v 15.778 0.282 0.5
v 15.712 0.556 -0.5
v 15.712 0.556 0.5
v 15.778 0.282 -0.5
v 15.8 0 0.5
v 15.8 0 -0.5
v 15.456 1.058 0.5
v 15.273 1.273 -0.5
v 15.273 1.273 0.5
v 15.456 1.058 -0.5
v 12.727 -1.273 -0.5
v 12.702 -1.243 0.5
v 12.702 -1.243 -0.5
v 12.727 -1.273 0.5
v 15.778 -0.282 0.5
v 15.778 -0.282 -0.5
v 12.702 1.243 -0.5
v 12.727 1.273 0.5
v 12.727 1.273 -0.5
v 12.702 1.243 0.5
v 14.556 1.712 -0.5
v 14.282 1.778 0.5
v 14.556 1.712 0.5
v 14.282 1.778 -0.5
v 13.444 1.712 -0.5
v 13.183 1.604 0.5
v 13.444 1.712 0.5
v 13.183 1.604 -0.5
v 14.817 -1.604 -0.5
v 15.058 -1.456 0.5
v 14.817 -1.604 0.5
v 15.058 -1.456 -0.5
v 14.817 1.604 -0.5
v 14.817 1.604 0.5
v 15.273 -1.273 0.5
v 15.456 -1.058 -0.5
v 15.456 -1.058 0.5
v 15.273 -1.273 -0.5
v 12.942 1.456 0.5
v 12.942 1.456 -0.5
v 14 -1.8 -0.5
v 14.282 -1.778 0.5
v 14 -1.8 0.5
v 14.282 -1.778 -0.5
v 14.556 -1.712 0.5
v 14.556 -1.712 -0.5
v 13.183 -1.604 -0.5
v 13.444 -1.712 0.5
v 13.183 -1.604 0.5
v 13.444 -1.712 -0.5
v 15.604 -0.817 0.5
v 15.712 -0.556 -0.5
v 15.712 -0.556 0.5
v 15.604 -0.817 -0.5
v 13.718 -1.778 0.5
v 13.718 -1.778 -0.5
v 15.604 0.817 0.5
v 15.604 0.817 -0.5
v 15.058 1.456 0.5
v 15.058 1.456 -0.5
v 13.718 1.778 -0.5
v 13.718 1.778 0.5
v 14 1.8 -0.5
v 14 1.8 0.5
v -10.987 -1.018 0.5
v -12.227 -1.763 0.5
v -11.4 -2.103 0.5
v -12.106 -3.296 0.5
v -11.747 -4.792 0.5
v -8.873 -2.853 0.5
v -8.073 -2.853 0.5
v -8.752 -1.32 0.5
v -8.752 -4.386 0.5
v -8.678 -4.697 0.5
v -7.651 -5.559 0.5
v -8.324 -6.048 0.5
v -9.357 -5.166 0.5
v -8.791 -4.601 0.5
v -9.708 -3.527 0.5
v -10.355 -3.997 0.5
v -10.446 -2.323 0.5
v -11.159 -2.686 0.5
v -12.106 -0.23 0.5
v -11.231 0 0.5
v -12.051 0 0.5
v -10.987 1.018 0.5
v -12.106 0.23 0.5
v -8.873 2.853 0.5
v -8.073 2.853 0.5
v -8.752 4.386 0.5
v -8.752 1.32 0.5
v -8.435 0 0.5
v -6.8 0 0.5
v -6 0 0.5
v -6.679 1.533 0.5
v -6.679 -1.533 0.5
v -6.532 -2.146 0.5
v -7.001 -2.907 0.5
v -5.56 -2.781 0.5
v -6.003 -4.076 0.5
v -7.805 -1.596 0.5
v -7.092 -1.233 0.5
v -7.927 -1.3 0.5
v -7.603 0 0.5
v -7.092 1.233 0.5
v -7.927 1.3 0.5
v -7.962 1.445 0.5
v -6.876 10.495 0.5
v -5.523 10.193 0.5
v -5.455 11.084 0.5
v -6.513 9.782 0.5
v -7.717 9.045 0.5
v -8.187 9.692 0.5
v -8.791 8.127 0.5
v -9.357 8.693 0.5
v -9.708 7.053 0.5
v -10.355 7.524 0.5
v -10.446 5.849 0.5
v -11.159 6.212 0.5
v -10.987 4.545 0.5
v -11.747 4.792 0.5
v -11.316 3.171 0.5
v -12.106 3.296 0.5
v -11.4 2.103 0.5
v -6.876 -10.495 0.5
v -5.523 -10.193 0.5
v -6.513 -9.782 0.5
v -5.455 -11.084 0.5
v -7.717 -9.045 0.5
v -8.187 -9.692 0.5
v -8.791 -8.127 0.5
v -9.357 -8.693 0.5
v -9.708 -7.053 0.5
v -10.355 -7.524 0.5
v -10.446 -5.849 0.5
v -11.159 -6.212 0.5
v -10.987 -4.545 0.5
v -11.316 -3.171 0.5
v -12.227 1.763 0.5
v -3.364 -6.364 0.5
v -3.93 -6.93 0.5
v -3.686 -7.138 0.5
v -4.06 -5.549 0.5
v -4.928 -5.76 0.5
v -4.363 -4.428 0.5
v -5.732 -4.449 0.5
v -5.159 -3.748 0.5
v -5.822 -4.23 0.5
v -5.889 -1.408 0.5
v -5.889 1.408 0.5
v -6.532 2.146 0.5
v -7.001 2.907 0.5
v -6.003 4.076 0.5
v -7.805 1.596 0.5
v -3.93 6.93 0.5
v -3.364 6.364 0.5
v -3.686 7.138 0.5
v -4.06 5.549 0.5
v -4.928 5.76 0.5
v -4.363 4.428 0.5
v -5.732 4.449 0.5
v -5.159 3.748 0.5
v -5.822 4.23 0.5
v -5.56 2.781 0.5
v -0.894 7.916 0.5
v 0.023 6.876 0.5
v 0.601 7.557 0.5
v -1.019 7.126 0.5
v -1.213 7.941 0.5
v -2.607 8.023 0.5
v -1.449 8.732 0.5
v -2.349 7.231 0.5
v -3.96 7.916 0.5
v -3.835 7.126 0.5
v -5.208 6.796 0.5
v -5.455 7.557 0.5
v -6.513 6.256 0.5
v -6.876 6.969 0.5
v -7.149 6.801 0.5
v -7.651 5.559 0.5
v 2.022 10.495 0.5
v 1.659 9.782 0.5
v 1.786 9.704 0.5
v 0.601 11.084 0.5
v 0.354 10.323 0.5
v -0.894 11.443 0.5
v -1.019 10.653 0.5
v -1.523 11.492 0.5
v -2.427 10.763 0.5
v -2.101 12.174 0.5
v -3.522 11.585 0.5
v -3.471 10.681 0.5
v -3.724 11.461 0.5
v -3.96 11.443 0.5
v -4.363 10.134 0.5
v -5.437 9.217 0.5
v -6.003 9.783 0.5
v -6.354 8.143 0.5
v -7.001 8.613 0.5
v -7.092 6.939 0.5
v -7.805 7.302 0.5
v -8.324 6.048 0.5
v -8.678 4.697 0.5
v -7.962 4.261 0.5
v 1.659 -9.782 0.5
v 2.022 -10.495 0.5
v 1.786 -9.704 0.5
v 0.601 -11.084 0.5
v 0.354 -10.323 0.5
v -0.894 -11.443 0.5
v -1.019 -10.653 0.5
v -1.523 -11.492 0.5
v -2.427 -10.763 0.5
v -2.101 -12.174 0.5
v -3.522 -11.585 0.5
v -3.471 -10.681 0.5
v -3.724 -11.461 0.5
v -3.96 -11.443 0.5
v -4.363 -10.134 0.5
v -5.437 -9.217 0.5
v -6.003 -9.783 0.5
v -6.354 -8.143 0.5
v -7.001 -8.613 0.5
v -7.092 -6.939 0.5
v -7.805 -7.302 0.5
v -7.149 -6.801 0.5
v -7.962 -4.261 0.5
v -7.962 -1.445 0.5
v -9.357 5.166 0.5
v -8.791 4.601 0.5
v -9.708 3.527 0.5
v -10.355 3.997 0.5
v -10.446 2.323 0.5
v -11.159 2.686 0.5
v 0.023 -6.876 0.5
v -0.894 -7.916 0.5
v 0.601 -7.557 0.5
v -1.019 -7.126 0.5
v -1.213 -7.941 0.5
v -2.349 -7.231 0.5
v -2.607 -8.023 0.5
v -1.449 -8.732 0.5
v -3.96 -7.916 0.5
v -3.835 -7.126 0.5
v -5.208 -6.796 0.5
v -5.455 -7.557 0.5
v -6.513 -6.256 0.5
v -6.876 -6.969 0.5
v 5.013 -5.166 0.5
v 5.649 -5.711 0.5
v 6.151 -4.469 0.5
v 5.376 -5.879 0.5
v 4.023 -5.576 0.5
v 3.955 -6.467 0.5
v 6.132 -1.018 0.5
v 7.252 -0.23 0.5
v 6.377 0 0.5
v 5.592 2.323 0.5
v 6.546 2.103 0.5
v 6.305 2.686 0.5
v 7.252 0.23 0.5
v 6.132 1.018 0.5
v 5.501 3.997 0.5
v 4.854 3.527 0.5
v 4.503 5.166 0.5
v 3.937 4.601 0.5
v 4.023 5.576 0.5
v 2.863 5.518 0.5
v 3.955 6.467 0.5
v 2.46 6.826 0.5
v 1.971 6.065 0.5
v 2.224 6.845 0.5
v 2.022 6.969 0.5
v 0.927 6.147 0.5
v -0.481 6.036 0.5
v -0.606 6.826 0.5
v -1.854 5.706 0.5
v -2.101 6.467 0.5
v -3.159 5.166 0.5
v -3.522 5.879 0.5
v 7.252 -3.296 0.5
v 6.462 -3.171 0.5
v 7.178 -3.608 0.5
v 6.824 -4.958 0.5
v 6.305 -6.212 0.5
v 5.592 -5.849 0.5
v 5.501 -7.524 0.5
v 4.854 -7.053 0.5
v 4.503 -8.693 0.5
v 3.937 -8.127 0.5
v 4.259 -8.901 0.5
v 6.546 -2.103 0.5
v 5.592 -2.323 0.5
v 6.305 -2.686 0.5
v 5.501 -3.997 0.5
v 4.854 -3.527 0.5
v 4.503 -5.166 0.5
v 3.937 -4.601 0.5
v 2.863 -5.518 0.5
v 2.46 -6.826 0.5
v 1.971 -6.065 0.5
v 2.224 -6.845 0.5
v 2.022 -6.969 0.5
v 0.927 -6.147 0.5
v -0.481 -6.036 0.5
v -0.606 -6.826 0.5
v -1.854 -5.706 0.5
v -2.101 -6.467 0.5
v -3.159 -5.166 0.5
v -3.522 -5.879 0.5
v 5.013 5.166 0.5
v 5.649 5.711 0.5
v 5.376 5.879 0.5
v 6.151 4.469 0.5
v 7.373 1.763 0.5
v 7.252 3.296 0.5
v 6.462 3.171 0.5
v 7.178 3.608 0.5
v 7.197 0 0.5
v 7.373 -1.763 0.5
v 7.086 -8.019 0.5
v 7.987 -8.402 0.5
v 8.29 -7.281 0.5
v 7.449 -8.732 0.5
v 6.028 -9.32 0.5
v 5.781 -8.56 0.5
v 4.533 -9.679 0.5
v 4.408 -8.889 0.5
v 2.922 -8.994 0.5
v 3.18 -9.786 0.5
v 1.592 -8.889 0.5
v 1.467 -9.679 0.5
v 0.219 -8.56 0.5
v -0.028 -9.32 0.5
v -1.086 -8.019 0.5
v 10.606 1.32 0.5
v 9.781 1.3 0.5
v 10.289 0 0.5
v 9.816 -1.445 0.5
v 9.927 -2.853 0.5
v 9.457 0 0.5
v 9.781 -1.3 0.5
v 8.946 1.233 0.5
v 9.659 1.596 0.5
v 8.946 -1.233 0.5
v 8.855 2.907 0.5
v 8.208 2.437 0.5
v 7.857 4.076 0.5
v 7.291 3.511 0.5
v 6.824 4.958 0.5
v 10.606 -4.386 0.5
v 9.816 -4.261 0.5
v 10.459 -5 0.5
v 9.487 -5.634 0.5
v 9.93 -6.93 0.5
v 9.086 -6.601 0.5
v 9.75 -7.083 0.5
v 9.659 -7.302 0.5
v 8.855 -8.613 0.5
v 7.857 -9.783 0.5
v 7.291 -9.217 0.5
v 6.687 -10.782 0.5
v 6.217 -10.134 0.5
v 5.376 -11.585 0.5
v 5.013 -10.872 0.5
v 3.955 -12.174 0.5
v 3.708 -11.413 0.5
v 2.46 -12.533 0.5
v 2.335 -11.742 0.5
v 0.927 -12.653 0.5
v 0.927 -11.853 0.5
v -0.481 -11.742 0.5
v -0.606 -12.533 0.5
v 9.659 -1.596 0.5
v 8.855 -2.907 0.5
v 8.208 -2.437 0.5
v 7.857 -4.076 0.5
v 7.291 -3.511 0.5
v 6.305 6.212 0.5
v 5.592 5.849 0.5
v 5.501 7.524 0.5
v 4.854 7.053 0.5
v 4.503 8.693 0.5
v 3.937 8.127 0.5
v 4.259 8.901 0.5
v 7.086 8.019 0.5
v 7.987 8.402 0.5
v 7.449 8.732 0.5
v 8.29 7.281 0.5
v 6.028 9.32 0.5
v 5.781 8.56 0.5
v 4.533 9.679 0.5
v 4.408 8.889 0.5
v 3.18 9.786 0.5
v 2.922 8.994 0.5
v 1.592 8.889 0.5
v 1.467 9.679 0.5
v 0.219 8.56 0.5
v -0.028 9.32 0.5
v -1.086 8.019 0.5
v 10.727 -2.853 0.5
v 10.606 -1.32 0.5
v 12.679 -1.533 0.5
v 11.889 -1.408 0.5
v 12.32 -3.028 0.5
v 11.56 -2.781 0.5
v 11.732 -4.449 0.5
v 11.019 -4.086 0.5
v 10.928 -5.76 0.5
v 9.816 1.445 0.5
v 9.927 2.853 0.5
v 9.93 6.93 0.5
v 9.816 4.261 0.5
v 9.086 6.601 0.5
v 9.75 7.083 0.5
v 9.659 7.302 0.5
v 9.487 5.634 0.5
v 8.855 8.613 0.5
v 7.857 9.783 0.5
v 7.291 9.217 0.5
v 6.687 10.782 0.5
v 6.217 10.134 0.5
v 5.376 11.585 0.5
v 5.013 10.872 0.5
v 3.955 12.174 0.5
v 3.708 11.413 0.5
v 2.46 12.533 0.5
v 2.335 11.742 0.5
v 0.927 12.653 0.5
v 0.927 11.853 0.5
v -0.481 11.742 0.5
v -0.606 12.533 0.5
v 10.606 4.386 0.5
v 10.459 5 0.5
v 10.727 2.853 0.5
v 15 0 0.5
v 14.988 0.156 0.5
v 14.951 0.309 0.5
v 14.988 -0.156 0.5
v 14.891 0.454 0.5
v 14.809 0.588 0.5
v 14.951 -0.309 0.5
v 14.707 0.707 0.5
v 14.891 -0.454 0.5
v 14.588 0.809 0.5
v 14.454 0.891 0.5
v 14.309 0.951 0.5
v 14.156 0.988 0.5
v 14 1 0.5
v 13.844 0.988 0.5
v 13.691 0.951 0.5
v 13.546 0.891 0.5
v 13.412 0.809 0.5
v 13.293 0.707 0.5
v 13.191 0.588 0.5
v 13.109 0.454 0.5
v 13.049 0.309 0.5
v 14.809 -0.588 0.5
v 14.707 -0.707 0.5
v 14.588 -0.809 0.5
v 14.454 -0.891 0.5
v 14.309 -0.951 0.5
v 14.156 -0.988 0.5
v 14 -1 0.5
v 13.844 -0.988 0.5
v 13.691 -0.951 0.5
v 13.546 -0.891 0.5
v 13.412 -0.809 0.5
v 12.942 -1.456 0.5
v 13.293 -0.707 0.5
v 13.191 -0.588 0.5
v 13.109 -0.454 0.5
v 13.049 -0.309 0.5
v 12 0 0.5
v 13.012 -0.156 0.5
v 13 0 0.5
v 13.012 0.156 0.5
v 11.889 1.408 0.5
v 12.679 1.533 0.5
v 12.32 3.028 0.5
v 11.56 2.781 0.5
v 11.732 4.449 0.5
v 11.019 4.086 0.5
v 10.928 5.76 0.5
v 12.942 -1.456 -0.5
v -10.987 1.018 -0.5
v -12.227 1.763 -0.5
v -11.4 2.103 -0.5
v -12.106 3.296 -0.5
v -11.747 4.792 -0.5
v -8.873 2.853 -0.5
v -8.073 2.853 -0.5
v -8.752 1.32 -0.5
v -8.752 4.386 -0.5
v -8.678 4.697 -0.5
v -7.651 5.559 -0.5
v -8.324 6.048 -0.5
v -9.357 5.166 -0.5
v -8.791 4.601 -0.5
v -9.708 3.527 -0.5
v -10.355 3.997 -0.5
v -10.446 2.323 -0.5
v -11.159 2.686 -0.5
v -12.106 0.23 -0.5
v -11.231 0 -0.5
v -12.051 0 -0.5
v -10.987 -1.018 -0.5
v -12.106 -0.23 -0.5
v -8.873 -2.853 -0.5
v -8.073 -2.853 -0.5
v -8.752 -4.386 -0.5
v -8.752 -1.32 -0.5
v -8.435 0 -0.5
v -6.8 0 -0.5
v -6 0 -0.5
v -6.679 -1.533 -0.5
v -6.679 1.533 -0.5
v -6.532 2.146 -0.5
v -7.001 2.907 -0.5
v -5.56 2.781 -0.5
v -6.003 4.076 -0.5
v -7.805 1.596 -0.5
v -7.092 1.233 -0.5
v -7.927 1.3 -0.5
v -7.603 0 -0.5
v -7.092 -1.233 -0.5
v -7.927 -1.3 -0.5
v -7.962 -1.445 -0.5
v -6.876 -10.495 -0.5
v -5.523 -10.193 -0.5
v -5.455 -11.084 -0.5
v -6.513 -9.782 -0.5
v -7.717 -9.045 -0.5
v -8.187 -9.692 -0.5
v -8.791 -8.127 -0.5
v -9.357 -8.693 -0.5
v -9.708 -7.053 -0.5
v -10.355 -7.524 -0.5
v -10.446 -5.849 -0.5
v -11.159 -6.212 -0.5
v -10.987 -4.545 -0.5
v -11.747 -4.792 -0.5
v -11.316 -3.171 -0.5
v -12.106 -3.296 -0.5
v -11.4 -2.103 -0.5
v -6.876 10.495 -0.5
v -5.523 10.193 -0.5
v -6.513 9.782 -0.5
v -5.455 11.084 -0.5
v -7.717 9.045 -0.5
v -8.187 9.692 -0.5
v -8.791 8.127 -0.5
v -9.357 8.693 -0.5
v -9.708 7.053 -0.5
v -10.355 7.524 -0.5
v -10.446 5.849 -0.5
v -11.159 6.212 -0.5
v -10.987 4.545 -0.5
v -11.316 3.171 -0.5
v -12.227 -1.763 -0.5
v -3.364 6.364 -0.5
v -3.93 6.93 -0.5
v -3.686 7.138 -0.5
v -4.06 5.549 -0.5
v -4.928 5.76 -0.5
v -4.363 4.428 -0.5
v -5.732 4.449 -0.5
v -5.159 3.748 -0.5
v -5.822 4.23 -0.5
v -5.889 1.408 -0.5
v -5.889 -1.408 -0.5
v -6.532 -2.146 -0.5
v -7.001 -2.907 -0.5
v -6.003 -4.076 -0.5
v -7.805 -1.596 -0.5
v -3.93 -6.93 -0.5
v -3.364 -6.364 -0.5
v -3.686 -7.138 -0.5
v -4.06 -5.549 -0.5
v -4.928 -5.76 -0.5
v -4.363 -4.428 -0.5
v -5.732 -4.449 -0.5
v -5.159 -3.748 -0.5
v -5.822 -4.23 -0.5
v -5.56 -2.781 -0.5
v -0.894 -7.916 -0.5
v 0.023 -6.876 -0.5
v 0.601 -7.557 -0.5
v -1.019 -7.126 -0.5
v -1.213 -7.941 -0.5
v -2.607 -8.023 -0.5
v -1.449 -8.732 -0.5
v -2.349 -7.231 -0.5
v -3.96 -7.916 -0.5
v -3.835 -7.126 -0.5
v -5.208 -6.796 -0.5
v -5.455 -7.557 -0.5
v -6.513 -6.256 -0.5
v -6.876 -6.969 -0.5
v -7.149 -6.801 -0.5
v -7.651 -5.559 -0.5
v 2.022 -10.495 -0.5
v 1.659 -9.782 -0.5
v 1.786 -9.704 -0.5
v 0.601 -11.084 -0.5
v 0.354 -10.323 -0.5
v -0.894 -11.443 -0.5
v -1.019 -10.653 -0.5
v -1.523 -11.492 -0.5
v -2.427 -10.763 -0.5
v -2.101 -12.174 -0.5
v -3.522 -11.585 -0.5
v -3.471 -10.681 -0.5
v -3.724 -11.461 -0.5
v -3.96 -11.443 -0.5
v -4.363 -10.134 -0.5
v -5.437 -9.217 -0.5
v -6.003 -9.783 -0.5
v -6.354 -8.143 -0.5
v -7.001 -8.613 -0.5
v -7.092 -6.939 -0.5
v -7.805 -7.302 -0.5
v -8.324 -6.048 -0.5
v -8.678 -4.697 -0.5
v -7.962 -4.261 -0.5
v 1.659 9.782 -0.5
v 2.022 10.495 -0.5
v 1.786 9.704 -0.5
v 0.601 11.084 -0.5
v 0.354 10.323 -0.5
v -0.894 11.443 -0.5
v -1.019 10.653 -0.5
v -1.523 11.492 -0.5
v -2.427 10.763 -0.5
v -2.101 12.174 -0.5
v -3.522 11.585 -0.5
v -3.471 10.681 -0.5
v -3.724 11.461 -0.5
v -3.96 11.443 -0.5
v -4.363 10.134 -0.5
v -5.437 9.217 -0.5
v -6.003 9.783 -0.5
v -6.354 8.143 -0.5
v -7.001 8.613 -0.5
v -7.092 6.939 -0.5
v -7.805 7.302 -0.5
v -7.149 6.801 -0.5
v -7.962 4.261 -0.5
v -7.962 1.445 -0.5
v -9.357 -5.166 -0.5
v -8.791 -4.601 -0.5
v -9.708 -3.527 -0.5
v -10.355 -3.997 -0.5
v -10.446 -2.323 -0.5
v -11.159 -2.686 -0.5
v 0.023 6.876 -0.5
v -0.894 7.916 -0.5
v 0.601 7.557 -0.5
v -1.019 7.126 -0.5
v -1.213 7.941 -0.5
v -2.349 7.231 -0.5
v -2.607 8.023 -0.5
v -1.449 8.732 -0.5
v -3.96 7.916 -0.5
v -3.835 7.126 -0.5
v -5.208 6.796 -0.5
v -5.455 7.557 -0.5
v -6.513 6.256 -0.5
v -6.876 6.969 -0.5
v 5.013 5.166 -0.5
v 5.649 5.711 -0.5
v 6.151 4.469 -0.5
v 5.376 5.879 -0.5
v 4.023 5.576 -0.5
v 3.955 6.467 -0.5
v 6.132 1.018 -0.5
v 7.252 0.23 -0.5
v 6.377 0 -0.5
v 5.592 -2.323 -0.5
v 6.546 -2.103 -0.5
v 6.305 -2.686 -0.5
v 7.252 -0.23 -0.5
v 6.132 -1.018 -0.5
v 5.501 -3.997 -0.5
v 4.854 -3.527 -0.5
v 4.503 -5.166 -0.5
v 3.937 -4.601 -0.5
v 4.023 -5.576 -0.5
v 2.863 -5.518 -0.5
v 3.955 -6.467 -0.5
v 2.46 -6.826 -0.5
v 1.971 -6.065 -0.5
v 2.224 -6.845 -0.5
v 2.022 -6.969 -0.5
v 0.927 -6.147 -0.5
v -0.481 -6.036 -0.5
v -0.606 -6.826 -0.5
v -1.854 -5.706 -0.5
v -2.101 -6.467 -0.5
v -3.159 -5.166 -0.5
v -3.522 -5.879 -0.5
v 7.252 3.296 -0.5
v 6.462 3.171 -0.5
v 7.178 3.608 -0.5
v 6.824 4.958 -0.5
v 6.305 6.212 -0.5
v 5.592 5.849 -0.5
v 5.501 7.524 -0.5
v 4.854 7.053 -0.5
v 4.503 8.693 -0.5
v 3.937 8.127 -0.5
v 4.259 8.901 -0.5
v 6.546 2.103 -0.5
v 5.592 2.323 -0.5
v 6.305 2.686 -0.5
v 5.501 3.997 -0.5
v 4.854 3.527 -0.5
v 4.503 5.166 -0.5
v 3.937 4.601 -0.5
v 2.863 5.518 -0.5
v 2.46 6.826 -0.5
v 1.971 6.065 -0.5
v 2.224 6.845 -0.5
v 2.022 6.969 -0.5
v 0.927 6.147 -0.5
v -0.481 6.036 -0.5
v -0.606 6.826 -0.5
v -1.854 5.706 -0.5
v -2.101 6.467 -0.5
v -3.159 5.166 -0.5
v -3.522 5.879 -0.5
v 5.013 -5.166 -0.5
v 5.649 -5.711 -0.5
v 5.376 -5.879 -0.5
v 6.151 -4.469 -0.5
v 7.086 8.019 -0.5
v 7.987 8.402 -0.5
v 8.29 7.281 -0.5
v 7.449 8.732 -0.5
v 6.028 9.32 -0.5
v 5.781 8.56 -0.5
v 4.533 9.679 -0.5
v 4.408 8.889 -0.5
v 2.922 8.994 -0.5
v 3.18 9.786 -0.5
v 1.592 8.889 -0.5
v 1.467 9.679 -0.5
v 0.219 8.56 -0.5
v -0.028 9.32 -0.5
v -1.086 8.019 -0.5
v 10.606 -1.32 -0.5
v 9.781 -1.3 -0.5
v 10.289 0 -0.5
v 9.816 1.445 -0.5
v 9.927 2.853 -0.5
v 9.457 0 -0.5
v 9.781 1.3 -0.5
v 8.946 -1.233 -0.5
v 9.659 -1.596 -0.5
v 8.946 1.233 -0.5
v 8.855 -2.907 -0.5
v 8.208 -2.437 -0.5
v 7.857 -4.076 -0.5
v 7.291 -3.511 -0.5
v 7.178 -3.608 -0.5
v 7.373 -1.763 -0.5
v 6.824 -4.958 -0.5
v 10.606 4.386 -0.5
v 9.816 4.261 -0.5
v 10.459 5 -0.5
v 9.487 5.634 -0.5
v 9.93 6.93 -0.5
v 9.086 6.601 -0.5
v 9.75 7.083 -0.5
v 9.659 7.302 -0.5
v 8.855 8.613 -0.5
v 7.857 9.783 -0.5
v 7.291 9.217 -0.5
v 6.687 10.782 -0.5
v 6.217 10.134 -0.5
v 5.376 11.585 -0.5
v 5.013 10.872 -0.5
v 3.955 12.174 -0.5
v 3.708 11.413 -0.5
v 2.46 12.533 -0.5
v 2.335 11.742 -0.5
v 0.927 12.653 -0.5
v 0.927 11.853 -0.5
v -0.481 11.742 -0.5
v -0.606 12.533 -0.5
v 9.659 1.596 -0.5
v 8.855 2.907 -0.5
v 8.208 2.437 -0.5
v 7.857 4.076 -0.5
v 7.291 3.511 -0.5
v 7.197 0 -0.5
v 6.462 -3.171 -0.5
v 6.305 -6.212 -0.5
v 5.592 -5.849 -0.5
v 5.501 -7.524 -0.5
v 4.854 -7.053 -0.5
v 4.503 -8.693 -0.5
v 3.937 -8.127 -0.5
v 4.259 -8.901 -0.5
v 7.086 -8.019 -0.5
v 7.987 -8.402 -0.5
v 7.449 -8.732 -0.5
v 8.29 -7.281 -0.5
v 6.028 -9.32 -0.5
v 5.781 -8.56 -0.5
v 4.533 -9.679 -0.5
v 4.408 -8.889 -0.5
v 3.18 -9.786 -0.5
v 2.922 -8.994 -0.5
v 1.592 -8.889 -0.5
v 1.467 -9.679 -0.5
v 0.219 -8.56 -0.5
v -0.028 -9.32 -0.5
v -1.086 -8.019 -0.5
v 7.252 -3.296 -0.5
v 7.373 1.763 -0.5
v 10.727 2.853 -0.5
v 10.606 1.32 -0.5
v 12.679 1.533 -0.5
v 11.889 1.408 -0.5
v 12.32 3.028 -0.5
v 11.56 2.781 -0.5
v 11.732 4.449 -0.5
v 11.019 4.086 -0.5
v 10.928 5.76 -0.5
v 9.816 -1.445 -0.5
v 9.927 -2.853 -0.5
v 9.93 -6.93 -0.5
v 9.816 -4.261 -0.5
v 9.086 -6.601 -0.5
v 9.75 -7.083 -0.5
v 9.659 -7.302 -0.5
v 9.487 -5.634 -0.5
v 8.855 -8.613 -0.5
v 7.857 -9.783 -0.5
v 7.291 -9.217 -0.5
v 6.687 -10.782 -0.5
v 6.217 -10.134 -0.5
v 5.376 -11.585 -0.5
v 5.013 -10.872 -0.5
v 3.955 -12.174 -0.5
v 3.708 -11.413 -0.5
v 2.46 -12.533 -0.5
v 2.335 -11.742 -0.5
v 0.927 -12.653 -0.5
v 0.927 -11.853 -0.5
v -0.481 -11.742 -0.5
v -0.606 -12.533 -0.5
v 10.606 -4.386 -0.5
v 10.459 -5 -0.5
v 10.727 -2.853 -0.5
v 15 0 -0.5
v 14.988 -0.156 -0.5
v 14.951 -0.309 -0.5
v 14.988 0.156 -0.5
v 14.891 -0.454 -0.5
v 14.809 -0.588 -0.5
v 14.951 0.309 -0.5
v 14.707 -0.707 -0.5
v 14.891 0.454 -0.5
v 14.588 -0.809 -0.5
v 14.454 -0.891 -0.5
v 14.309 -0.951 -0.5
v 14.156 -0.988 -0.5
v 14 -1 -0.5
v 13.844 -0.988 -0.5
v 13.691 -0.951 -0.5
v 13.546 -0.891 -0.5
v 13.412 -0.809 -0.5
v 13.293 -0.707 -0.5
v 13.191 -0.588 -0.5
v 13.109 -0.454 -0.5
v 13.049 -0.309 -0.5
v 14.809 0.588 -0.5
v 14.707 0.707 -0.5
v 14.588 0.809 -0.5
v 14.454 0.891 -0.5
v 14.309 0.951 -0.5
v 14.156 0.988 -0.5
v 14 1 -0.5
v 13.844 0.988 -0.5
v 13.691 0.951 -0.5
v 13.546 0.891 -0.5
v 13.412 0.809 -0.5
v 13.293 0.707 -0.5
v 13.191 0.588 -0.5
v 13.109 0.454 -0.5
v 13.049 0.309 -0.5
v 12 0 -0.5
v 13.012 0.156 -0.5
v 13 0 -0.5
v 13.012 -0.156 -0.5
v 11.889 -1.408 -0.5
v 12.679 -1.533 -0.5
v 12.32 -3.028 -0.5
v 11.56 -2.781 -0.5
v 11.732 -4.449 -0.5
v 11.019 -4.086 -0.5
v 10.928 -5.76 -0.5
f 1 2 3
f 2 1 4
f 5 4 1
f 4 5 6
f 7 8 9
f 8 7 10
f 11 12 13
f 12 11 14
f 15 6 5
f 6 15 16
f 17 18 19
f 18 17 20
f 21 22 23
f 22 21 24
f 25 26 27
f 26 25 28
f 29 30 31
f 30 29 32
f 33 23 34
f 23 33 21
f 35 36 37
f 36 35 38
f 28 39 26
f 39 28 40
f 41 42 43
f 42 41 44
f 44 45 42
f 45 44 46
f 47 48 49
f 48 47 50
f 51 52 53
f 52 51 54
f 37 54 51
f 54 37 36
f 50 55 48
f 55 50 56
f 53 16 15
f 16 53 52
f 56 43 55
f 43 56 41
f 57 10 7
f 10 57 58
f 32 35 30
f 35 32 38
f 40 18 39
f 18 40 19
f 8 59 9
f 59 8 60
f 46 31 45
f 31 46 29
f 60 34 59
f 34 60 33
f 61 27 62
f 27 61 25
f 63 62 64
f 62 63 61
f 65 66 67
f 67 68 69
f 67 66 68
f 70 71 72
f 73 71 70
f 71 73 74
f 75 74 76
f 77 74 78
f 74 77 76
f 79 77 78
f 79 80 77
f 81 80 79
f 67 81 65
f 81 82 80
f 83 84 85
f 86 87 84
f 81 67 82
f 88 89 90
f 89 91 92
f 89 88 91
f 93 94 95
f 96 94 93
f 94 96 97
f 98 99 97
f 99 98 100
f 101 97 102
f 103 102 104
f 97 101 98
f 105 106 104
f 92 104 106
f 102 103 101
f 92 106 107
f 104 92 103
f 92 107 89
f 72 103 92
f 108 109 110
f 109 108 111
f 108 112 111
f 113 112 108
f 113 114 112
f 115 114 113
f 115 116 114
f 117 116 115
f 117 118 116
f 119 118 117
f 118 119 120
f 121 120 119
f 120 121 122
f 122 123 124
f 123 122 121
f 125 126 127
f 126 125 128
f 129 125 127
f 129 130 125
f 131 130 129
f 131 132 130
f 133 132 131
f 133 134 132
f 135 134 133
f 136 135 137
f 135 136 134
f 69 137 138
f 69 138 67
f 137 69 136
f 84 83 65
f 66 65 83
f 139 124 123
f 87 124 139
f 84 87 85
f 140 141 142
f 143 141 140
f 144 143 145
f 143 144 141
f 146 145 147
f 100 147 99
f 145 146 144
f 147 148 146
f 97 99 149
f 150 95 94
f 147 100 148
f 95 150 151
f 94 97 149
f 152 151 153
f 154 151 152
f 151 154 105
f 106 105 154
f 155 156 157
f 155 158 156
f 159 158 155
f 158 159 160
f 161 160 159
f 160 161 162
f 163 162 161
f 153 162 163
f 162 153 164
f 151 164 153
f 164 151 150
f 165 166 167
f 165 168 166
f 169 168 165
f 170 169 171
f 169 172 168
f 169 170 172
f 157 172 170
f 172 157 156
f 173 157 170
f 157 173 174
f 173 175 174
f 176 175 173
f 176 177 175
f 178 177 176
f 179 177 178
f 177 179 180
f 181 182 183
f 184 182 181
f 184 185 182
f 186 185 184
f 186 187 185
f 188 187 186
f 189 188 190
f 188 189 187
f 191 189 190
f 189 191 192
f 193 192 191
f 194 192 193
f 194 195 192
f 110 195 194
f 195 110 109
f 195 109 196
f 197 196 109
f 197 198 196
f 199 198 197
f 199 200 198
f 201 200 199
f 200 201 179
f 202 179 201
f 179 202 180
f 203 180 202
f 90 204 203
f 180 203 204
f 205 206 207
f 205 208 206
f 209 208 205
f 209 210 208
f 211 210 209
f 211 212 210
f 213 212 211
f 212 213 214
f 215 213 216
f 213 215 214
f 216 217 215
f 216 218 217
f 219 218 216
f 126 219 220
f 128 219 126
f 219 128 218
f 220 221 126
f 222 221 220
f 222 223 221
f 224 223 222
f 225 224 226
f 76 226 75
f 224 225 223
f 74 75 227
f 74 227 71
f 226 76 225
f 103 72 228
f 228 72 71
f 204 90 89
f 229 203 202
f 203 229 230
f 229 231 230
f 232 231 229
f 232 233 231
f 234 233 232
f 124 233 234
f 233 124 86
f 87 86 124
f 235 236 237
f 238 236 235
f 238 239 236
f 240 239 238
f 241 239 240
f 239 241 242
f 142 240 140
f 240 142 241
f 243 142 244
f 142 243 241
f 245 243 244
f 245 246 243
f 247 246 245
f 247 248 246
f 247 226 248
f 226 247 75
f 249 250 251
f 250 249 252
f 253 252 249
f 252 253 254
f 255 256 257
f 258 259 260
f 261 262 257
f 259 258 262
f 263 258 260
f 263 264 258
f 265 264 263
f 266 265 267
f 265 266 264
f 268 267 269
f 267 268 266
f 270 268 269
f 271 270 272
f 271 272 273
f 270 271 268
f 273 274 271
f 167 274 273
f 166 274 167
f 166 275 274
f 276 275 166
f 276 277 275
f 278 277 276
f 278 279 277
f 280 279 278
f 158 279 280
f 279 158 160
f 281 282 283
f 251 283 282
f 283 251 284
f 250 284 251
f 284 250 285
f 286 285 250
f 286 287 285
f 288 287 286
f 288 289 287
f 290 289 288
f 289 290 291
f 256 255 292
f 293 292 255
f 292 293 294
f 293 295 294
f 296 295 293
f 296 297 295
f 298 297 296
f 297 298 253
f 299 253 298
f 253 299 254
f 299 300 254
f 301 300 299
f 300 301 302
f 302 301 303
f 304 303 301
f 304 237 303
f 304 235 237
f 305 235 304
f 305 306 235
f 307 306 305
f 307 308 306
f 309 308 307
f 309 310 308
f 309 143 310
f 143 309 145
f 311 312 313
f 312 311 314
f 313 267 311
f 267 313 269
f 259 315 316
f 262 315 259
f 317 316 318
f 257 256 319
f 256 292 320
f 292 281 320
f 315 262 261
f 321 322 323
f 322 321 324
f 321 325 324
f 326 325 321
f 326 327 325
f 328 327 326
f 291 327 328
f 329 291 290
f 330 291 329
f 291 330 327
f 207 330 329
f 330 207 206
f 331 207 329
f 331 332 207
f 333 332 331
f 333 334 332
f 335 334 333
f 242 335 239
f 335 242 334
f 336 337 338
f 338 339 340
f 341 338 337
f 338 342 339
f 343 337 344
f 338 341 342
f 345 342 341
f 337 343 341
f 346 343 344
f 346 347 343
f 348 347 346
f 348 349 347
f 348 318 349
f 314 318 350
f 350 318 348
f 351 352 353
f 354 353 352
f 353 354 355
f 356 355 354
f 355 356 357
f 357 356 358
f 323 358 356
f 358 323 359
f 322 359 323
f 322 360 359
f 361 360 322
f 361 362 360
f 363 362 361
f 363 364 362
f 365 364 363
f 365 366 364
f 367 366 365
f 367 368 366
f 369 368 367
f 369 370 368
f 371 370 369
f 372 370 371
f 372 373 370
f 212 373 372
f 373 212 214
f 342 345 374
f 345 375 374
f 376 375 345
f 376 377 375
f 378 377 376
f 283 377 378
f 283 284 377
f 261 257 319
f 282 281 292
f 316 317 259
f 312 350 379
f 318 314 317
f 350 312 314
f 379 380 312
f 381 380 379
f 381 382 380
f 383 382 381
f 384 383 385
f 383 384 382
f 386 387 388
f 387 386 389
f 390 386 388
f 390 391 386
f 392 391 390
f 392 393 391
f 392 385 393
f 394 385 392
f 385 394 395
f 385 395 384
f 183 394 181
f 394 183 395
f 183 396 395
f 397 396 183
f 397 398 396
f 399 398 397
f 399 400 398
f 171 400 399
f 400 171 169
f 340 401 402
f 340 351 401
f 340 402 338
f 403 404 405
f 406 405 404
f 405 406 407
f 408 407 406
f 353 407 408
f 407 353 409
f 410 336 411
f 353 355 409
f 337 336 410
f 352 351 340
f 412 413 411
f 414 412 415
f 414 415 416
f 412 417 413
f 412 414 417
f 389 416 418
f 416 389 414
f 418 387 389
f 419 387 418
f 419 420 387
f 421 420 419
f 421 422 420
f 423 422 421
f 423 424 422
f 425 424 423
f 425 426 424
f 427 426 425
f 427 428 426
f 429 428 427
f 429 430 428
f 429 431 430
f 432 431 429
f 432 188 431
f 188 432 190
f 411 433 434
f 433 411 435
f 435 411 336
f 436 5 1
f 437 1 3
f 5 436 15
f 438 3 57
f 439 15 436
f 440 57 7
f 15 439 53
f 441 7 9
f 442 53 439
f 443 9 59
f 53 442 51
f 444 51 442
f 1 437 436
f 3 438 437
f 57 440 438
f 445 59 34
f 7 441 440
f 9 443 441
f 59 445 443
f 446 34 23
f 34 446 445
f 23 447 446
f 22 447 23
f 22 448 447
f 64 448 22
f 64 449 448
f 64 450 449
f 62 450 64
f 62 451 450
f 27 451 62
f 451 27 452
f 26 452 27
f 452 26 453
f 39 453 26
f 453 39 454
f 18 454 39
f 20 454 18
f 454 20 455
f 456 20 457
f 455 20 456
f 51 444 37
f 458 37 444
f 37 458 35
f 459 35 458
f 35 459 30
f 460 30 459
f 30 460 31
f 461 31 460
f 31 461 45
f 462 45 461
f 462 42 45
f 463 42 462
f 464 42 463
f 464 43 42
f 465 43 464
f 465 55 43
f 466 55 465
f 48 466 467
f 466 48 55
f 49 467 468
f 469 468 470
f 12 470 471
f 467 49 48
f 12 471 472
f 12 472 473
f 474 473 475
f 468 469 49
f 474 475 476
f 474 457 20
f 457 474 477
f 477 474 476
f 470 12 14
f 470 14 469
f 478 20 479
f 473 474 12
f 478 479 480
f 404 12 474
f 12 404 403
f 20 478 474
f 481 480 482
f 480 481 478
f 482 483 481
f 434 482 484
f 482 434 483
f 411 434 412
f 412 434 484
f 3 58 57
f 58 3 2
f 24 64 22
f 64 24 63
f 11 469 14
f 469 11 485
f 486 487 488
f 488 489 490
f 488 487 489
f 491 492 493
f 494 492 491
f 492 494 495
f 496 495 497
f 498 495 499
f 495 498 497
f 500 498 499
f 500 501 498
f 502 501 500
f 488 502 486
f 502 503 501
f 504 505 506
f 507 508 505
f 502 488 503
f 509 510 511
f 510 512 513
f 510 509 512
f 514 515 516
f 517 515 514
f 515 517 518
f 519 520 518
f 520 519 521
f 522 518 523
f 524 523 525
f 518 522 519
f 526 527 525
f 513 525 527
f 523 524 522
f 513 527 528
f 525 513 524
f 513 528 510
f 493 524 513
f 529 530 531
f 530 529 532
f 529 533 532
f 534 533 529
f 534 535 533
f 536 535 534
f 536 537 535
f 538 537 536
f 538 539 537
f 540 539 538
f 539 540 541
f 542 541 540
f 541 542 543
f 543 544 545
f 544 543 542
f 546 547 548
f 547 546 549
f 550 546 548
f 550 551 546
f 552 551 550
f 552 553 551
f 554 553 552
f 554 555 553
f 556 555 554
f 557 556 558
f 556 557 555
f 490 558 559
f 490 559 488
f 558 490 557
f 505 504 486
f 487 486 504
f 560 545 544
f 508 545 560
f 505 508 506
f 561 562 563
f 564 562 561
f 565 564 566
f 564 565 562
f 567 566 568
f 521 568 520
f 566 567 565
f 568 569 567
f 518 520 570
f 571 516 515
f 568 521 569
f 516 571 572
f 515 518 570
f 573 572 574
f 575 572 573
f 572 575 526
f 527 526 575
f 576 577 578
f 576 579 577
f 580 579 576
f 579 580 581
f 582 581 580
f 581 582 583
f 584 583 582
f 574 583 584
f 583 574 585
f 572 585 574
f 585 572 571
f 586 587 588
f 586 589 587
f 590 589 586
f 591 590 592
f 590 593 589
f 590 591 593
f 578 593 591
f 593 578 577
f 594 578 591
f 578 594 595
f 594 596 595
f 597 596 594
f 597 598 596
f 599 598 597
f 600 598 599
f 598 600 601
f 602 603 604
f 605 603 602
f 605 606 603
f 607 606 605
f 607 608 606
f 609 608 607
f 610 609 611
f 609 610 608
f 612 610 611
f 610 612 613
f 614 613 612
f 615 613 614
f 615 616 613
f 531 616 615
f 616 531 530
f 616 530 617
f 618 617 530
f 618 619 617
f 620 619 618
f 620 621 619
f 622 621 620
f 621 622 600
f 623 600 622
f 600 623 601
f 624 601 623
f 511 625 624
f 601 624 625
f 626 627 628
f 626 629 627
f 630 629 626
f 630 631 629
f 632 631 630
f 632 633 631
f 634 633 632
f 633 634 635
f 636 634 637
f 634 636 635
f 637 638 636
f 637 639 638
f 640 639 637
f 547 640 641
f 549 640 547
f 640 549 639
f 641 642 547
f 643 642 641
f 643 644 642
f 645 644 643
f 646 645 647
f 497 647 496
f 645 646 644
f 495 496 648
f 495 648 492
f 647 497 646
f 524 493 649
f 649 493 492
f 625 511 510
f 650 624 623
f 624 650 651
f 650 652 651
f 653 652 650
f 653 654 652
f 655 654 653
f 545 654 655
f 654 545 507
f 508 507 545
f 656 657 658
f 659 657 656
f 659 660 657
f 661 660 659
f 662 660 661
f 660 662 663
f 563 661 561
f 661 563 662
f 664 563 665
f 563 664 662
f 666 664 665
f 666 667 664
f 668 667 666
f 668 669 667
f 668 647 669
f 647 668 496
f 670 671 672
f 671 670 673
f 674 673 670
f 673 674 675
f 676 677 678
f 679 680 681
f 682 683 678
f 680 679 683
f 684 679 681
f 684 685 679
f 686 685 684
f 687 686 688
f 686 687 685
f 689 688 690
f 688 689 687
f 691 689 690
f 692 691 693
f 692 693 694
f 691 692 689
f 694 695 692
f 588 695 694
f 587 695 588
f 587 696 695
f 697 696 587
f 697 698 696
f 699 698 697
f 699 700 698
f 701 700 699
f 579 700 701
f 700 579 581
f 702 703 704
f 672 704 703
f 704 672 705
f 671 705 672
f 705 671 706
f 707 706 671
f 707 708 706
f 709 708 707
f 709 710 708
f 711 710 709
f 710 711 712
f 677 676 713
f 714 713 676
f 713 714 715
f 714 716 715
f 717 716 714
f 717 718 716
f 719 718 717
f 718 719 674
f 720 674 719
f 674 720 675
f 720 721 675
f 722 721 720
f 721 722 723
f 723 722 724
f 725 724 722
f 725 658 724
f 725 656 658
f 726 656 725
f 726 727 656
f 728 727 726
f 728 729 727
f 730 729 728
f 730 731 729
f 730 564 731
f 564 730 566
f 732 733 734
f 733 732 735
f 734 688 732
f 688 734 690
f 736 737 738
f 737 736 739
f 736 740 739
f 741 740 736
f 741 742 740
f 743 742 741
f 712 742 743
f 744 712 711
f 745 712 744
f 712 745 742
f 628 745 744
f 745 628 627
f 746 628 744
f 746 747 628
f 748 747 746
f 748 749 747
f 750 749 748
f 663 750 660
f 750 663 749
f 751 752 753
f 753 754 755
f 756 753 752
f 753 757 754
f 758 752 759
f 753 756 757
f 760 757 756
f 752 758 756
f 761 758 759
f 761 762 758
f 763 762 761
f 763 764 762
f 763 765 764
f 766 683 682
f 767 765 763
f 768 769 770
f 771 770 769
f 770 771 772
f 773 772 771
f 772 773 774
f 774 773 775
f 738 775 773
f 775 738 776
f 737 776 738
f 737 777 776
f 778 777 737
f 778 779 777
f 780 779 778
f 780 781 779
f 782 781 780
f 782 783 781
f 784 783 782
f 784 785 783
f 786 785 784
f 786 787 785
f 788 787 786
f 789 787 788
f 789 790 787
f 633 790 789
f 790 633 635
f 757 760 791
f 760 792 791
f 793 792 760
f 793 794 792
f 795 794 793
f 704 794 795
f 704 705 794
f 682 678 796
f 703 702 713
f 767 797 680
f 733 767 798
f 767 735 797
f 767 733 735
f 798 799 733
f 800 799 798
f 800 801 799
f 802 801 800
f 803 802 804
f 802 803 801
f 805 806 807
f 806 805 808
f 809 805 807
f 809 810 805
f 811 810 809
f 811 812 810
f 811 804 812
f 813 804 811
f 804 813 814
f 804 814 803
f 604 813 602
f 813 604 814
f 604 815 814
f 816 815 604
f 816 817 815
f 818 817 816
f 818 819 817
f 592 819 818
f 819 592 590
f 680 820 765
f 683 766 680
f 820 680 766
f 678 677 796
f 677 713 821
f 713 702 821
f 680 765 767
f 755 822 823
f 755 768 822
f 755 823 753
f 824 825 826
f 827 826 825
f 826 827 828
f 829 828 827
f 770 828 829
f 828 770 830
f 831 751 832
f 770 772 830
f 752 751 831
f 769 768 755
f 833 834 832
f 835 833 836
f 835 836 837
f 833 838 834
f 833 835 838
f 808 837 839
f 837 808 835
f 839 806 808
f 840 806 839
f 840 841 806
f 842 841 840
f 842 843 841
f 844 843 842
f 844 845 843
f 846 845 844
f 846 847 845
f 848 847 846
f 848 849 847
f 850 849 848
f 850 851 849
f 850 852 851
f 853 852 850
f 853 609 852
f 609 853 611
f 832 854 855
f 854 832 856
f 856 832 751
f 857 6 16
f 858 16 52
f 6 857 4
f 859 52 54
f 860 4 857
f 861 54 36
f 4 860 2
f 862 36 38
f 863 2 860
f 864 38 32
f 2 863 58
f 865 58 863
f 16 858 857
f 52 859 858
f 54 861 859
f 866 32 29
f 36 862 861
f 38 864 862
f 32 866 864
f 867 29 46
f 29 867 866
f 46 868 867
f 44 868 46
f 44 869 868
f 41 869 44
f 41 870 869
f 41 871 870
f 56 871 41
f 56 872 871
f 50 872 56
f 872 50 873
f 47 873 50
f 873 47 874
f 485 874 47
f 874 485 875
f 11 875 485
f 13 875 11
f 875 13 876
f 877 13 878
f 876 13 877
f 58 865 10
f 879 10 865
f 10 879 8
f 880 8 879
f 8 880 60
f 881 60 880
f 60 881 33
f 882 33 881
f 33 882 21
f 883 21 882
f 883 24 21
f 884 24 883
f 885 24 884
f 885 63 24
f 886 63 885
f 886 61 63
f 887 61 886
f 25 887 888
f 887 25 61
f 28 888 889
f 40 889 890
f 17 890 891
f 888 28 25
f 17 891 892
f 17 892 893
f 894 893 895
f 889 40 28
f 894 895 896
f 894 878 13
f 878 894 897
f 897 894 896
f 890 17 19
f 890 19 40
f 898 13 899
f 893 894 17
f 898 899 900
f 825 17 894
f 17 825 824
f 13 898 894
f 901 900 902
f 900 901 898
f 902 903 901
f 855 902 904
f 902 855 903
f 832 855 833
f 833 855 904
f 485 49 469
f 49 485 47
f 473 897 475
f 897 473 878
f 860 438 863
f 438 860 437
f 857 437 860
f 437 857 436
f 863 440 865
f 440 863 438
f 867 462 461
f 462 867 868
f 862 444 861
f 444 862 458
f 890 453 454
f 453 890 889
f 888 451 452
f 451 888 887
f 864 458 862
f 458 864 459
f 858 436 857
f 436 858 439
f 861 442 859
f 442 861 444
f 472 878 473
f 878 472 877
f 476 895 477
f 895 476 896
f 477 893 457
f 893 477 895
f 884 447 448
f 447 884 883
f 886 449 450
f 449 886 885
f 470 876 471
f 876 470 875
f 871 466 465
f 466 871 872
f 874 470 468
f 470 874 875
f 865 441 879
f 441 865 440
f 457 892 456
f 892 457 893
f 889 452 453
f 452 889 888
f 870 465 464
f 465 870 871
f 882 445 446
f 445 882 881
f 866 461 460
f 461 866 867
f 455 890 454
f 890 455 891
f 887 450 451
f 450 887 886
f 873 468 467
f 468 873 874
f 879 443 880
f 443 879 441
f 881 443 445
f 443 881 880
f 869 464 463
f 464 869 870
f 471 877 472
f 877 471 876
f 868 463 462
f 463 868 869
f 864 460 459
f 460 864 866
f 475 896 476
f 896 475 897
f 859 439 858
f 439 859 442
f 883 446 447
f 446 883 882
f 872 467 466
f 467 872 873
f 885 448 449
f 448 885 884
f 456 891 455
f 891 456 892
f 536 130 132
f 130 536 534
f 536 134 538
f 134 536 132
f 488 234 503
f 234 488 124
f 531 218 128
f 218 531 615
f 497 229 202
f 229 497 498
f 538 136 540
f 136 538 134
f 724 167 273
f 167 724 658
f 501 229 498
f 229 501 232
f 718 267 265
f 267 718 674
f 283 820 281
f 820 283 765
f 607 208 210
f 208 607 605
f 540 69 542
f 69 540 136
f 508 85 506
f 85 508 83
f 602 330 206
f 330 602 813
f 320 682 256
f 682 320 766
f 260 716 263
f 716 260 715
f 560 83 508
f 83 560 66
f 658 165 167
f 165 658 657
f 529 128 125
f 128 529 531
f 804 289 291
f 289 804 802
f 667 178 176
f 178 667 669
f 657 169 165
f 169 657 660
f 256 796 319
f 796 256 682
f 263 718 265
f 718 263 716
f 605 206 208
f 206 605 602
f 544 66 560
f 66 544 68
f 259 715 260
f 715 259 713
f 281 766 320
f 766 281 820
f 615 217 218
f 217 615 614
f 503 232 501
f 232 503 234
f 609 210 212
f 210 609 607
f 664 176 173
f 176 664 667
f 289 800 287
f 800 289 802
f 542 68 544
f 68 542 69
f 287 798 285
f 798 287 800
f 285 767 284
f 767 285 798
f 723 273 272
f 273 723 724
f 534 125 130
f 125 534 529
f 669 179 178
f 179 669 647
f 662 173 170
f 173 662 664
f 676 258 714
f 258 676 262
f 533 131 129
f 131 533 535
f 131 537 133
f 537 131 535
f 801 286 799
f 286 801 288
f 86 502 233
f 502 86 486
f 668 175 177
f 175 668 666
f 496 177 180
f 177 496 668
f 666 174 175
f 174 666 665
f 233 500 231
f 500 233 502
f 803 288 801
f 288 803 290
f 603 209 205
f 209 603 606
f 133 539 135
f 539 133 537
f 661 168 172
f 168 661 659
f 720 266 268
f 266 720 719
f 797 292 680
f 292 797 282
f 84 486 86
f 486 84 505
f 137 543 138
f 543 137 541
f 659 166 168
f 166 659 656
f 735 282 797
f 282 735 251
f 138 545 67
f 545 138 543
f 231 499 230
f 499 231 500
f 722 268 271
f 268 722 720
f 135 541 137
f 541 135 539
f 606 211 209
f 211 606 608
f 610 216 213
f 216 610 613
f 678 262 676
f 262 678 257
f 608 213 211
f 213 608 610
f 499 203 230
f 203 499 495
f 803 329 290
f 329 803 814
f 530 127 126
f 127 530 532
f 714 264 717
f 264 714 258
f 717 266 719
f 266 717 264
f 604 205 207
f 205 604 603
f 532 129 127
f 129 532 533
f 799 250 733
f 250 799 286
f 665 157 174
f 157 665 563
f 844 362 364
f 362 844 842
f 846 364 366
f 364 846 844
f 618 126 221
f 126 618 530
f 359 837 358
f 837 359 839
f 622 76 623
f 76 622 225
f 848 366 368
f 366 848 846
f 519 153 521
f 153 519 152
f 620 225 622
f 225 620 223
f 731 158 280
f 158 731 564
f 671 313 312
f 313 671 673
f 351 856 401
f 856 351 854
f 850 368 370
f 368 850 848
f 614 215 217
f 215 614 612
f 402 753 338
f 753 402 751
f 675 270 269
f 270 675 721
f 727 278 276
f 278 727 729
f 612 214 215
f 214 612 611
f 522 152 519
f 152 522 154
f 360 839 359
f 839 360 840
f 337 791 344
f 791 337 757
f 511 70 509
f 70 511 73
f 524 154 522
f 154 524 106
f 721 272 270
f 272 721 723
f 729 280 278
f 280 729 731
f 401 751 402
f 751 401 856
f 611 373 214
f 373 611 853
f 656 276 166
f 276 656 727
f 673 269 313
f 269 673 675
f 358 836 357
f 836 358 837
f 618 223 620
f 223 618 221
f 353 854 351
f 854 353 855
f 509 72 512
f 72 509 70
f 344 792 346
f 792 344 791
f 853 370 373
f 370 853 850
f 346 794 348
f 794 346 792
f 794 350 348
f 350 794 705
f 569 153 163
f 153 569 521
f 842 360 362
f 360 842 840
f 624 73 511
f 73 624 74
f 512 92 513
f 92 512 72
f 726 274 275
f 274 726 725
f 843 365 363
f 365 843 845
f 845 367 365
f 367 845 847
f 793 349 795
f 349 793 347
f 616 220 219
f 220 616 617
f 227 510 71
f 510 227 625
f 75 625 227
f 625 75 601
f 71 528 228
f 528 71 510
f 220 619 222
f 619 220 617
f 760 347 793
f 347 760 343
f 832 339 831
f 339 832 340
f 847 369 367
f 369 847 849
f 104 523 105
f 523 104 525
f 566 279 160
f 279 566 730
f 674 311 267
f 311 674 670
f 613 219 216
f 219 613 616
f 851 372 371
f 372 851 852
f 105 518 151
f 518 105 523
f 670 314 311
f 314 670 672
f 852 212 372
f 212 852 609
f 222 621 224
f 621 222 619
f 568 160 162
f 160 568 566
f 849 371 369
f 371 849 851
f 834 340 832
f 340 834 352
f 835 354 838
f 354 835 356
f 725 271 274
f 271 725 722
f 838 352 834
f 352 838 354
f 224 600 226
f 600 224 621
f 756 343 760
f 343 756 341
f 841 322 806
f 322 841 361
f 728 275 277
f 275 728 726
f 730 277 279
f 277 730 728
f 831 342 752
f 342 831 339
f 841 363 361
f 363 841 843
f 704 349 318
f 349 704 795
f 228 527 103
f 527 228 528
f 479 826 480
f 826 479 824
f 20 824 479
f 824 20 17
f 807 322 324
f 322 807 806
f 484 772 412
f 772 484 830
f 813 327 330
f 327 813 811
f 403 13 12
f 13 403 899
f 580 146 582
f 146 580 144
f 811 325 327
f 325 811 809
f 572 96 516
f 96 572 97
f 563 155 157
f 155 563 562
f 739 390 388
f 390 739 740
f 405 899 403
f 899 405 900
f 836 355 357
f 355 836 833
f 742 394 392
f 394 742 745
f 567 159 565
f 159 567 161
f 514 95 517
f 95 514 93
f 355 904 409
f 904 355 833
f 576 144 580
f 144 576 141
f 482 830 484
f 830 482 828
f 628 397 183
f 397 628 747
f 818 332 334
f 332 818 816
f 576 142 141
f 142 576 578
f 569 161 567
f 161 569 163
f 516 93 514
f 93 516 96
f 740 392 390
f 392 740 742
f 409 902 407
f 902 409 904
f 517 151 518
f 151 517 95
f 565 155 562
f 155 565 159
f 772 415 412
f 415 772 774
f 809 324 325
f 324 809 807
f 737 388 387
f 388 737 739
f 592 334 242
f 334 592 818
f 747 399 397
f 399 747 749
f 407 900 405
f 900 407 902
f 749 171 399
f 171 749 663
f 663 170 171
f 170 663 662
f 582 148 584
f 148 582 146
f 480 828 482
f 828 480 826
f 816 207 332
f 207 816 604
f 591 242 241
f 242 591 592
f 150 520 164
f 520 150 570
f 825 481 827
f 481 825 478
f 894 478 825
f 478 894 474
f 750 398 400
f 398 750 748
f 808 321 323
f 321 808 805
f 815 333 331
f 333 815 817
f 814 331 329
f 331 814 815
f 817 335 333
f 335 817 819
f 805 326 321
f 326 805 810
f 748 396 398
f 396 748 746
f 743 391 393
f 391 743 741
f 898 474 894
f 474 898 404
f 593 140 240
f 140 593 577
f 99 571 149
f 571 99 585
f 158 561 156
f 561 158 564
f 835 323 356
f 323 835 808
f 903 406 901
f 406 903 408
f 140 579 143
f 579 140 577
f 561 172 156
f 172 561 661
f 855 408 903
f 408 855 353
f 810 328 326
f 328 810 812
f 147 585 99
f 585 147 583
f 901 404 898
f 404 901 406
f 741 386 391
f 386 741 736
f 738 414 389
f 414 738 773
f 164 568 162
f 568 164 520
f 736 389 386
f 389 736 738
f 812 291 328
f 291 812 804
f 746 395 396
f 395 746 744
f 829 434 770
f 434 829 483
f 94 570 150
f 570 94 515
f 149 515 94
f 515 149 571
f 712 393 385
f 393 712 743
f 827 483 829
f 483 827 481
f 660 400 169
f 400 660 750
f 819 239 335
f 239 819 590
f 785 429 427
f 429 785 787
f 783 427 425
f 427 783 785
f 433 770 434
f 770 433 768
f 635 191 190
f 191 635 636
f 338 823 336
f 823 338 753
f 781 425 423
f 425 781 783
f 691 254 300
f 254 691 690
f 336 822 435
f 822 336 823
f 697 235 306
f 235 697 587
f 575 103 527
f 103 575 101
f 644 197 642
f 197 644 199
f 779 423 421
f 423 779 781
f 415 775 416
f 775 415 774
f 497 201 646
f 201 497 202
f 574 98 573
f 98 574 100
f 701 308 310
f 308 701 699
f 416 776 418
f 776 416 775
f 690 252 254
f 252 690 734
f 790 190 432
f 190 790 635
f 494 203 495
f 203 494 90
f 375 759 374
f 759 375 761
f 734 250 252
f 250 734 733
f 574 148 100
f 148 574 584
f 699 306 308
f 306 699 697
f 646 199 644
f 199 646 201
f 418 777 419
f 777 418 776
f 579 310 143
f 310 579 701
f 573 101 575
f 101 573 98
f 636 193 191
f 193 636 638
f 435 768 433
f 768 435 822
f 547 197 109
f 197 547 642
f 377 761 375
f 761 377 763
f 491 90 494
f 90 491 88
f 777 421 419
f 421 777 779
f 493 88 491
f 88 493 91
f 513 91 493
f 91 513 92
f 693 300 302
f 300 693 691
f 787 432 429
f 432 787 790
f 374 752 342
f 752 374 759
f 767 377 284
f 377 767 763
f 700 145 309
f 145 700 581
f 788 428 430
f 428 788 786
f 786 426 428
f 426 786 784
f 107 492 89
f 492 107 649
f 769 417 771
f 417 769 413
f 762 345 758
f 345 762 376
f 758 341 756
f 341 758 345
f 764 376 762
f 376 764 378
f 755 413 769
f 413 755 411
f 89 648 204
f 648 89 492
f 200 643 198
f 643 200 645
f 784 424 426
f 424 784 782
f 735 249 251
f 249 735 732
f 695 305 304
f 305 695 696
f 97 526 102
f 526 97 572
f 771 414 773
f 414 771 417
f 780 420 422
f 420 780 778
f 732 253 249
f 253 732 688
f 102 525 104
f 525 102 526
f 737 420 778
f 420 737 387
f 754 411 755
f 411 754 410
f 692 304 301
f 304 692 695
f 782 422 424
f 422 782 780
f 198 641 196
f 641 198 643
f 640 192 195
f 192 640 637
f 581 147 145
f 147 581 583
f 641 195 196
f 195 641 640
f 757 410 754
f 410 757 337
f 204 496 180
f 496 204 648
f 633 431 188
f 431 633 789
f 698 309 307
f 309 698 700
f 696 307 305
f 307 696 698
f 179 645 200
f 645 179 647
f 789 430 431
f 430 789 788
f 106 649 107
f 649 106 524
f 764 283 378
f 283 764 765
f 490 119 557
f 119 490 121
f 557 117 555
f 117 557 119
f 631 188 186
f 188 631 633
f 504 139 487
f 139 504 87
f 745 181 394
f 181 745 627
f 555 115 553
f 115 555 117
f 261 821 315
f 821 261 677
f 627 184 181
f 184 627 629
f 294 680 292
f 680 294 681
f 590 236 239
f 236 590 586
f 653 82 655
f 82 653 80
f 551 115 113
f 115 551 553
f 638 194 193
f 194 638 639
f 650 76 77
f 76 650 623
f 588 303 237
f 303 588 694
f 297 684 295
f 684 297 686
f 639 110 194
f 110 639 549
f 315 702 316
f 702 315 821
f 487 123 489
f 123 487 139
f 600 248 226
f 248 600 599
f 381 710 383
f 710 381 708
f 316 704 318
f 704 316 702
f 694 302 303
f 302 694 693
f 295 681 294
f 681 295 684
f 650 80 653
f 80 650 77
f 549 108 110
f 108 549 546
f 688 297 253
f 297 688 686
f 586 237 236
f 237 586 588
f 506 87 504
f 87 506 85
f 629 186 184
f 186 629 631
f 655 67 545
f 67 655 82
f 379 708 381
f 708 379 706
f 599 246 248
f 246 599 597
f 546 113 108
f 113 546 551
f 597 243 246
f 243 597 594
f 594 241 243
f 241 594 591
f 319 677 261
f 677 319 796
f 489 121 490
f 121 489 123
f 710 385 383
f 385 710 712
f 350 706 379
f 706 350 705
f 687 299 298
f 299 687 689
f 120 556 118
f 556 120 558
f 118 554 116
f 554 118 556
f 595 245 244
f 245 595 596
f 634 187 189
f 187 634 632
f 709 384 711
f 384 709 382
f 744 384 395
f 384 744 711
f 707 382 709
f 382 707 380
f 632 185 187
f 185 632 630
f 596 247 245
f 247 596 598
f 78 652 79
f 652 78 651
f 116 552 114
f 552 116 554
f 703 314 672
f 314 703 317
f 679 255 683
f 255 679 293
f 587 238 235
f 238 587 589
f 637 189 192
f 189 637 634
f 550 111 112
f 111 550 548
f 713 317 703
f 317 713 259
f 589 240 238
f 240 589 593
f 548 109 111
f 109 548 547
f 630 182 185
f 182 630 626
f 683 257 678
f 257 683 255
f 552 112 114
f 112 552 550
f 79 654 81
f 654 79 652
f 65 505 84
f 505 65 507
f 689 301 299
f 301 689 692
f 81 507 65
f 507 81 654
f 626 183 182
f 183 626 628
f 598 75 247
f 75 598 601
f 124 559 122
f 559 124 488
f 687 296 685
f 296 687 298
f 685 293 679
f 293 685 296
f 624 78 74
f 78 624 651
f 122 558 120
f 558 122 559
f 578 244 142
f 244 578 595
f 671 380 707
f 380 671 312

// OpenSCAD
$fn = 40;

module fusionPartyLogo(ringRadius=9.0, lineThickness=0.8, loopThickness=0.7, loopHole=1.0)
{
    ringOffset=ringRadius/3;
    
    translate([ringRadius+ringOffset+lineThickness+loopThickness+loopHole/2,0,0])
    difference()
    {
        cylinder(r=1.0+lineThickness, h=1.0, center=true);
        cylinder(r=1.0, h=1.1, center=true);
    }
    
    stepAngle=72;
    for (i=[0:1:4])
    {
        rotate([0,0,i*stepAngle-stepAngle*2])
        translate([ringOffset,0,0])
            difference()
            {
                cylinder(r=ringRadius+lineThickness, h=1.0, center=true);
                cylinder(r=ringRadius, h=1.1, center=true);
            }
    }
}

fusionPartyLogo();
